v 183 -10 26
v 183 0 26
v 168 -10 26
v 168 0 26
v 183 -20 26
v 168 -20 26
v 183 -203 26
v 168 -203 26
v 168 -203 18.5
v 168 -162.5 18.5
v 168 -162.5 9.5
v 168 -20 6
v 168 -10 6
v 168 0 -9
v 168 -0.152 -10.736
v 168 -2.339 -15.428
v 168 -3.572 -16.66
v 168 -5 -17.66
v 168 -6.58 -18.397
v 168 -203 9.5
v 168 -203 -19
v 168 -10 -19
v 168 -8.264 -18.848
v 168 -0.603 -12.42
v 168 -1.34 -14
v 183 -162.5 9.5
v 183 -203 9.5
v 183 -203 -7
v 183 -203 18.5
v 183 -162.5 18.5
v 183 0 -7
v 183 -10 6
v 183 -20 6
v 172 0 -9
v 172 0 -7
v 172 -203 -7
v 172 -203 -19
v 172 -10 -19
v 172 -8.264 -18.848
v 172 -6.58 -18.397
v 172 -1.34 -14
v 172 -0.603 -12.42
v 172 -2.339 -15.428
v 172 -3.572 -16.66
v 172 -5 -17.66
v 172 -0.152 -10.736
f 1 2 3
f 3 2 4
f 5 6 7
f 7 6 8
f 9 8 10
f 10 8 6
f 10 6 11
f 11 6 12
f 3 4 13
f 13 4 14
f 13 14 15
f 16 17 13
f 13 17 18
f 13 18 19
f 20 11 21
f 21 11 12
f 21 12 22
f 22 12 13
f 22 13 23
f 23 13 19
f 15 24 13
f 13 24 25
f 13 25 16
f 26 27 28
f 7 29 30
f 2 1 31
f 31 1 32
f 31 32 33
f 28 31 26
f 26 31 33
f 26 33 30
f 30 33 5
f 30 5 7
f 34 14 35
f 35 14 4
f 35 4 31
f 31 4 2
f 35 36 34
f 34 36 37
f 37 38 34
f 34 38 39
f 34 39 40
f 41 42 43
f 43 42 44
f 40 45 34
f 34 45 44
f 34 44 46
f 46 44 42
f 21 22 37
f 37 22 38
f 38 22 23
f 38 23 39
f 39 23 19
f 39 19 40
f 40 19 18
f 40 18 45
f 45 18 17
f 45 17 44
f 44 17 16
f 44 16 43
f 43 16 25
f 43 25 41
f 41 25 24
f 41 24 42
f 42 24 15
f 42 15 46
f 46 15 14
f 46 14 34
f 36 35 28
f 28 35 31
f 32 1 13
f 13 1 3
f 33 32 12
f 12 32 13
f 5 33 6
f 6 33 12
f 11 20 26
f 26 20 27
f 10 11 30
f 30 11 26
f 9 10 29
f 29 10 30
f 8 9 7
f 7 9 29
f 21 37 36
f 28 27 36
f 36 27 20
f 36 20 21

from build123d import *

# Parameters (mm, degrees)
EXTRUDE_1_DEPTH        = 26
EXTRUDE_2_DEPTH        = 19
FILLET_1_R             = 10
SKETCH_5_W             = 161
SKETCH_5_H             = 6
CUT_EXTRUDE_1_DEPTH    = 52
SKETCH_1_5_W           = 11
SKETCH_1_5_H           = 340
EXTRUDE_4_DEPTH        = 7
SKETCH_6_W             = 1.9
SKETCH_6_H             = 2
SKETCH_6_W_2           = 6.6
EXTRUDE_5_DEPTH        = 28
SKETCH_6_3_W           = 6.6
SKETCH_6_3_H           = 2
CUT_EXTRUDE_2_DEPTH    = 5
FILLET_2_R             = 20
SKETCH_6_4_W           = 15
SKETCH_6_4_H           = 10
SKETCH_6_4_H_2         = 9
EXTRUDE_6_DEPTH        = 30
SKETCH_6_5_W           = 15
SKETCH_6_5_H           = 9
EXTRUDE_7_DEPTH        = 28
EXTRUDE_8_DEPTH        = 15
FILLET_3_R             = 20
FILLET_3_OF_MIRROR_2_R = 20
FILLET_4_R             = 20
SKETCH_11_W            = 20
SKETCH_11_H            = 20
CUT_EXTRUDE_3_DEPTH    = 617
SKETCH_10_W            = 20
SKETCH_10_H            = 10
CUT_EXTRUDE_4_DEPTH    = 617
CUT_EXTRUDE_START      = -37
SKETCH_12_W            = 8
SKETCH_12_H            = 20
SKETCH_12_W_2          = 0.5
CUT_EXTRUDE_5_DEPTH    = 37


with BuildPart() as part:
    # 스케치1 → 보스-돌출1 (new body)
    with BuildSketch(Plane.XY):
        Polygon((-168, 0), (168, 0), (183, 0), (183, -340), (168, -340), (168, -20), (-168, -20), (-168, -340), (-183, -340), (-183, 0), align=None)
    extrude(amount=EXTRUDE_1_DEPTH)

    # 스케치1<4> → 보스-돌출2 (add)
    with BuildSketch(Plane.XY):
        Polygon((172, 0), (168, 0), (168, -20), (168, -340), (172, -340), align=None)
        Polygon((-168, -20), (-168, 0), (-172, 0), (-172, -340), (-168, -340), align=None)
    extrude(amount=-EXTRUDE_2_DEPTH)

    # 필렛1
    fillet_1_edges = [part.edges().sort_by_distance(p)[0] for p in [
        (170, 0, -19),
        (170, -340, -19),
        (-170, -340, -19),
        (-170, 0, -19),
    ]]
    fillet(fillet_1_edges, radius=FILLET_1_R)

    # 스케치5 → 컷-돌출1 (cut)
    with BuildSketch(Plane(origin=(0, 0, 0), x_dir=(1, 0, 0), z_dir=(0, 1, 0))):
        with Locations((-87.5, -3)):
            Rectangle(SKETCH_5_W, SKETCH_5_H)
        with Locations((87.5, -3)):
            Rectangle(SKETCH_5_W, SKETCH_5_H)
    extrude(amount=-CUT_EXTRUDE_1_DEPTH, mode=Mode.SUBTRACT)

    # 스케치1<5> → 보스-돌출4 (add)
    with BuildSketch(Plane.XY):
        with Locations((177.5, -170)):
            Rectangle(SKETCH_1_5_W, SKETCH_1_5_H)
        with Locations((-177.5, -170)):
            Rectangle(SKETCH_1_5_W, SKETCH_1_5_H)
    extrude(amount=-EXTRUDE_4_DEPTH)

    # 스케치6 → 보스-돌출5 (add)
    with BuildSketch(Plane.XZ.offset(340)):
        with Locations((-182.05, -6)):
            Rectangle(SKETCH_6_W, SKETCH_6_H)
        with Locations((-177.8, -6)):
            Rectangle(SKETCH_6_W_2, SKETCH_6_H)
        Polygon((-174.5, -7), (-172, -7), (-168, -7), (-168, -5), (-174.5, -5), align=None)
    extrude_5 = extrude(amount=EXTRUDE_5_DEPTH)

    # 스케치6<3> → 컷-돌출2 (cut)
    with BuildSketch(Plane.XZ.offset(340)):
        with Locations((-177.8, -6)):
            Rectangle(SKETCH_6_3_W, SKETCH_6_3_H)
    cut_extrude_2 = extrude(amount=CUT_EXTRUDE_2_DEPTH, mode=Mode.SUBTRACT)

    # 필렛2
    # the kernel refuses this fillet: 20 mm, written as the material it adds along each edge
    with BuildSketch(Plane(origin=(-172, -340, -7), x_dir=(0, -1, 0), z_dir=(1, 0, 0))) as fillet_2_piece_1:
        with BuildLine():
            CenterArc((14, 20), FILLET_2_R, 216.869897646, 53.130102354)
            Line((-2, 8), (-3.6, 6.8))
            ThreePointArc((-3.6, 6.8), (-2, 2), (-2, 0))
            Line((-2, 0), (0, -2))
            Line((0, -2), (14, -2))
            Line((14, -2), (14, 0))
        make_face()
    extrude(amount=4)

    # 스케치6<4> → 보스-돌출6 (add)
    with BuildSketch(Plane.XZ.offset(340)):
        with Locations((-175.5, 31)):
            Rectangle(SKETCH_6_4_W, SKETCH_6_4_H)
        with Locations((-175.5, 40.5)):
            Rectangle(SKETCH_6_4_W, SKETCH_6_4_H_2)
    extrude_6 = extrude(amount=-EXTRUDE_6_DEPTH)

    # 스케치6<5> → 보스-돌출7 (add)
    with BuildSketch(Plane.XZ.offset(340)):
        with Locations((-175.5, 40.5)):
            Rectangle(SKETCH_6_5_W, SKETCH_6_5_H)
    extrude_7 = extrude(amount=EXTRUDE_7_DEPTH)

    # 스케치9 → 보스-돌출8 (add)
    with BuildSketch(Plane.ZY.offset(183)):
        Polygon((26, -310), (45, -310), (26, -270), align=None)
    extrude_8 = extrude(amount=-EXTRUDE_8_DEPTH)

    # 필렛3
    fillet_3_edges = [part.edges().sort_by_distance(p)[0] for p in [
        (-175.5, -310, 45),
        (-175.5, -270, 26),
    ]]
    fillet(fillet_3_edges, radius=FILLET_3_R)

    # 대칭 복사2: 보스-돌출5, 컷-돌출2, 보스-돌출6, 보스-돌출7, 보스-돌출8 across plane
    add(extrude_5.mirror(Plane(origin=(0, 0, 0), x_dir=(0, 0, 1), z_dir=(1, 0, 0))))
    add(cut_extrude_2.mirror(Plane(origin=(0, 0, 0), x_dir=(0, 0, 1), z_dir=(1, 0, 0))), mode=Mode.SUBTRACT)
    add(extrude_6.mirror(Plane(origin=(0, 0, 0), x_dir=(0, 0, 1), z_dir=(1, 0, 0))))
    add(extrude_7.mirror(Plane(origin=(0, 0, 0), x_dir=(0, 0, 1), z_dir=(1, 0, 0))))
    add(extrude_8.mirror(Plane(origin=(0, 0, 0), x_dir=(0, 0, 1), z_dir=(1, 0, 0))))

    # 필렛3 of 대칭 복사2
    fillet_3_of_mirror_2_edges = [part.edges().sort_by_distance(p)[0] for p in [
        (175.5, -310, 45),
        (175.5, -270, 26),
    ]]
    fillet(fillet_3_of_mirror_2_edges, radius=FILLET_3_OF_MIRROR_2_R)

    # 필렛4
    # the kernel refuses this fillet: 20 mm, written as the material it adds along each edge
    with BuildSketch(Plane(origin=(172, -340, -7), x_dir=(0, 0.24253562503633938, -0.9701425001453302), z_dir=(-1, 0, 0))) as fillet_4_piece_1:
        with BuildLine():
            CenterArc((16.007351252, 18.432707503), FILLET_4_R, 194.036243468, 53.130102354)
            Line((-3.395498751, 13.581995002), (-5.335783751, 13.096923752))
            Line((-5.335783751, 13.096923752), (-1.940285, -0.48507125))
            Line((-1.940285, -0.48507125), (0.48507125, -1.940285))
            ThreePointArc((0.48507125, -1.940285), (2.42535625, -1.45521375), (7.470097251, -1.84327075))
            Line((7.470097251, -1.84327075), (8.246211251, 0))
        make_face()
    extrude(amount=4)

    # 스케치11 → 컷-돌출3 (cut)
    with BuildSketch(Plane.ZY.offset(-168)):
        with BuildLine():
            ThreePointArc((45, -314.508610159), (44.510394688, -310.110371974), (43.065550087, -305.927473868))
            Line((43.065550087, -305.927473868), (27.934449913, -274.072526132))
            ThreePointArc((27.934449913, -274.072526132), (26.489605312, -269.889628026), (26, -265.491389841))
            Line((26, -265.491389841), (26, -20))
            Line((26, -20), (6, -20))
            Line((6, -20), (6, 0))
            Line((6, 0), (-7, 0))
            Line((-7, 0), (-7, -354))
            Line((-7, -354), (-7, -368))
            Line((-7, -368), (-5, -368))
            Line((-5, -368), (-5, -340))
            Line((-5, -340), (36, -340))
            Line((36, -340), (36, -368))
            Line((36, -368), (45, -368))
            Line((45, -368), (45, -314.508610159))
        make_face()
        with Locations((16, -10)):
            Rectangle(SKETCH_11_W, SKETCH_11_H)
        with BuildLine():
            Line((-7, -354), (-7, 0))
            Line((-7, 0), (-9, 0))
            ThreePointArc((-9, 0), (-16.071067812, -2.928932188), (-19, -10))
            Line((-19, -10), (-19, -330))
            ThreePointArc((-19, -330), (-17.94427191, -334.472135955), (-15, -338))
            ThreePointArc((-15, -338), (-9.11145618, -345.05572809), (-7, -354))
        make_face()
    extrude(amount=CUT_EXTRUDE_3_DEPTH, mode=Mode.SUBTRACT)

    # 스케치10 → 컷-돌출4 (cut)
    with BuildSketch(Plane(origin=(183, 0, 0), x_dir=(0, 0, -1), z_dir=(1, 0, 0))):
        with Locations((-16, -15)):
            Rectangle(SKETCH_10_W, SKETCH_10_H)
    extrude(amount=-CUT_EXTRUDE_4_DEPTH, mode=Mode.SUBTRACT)

    # 스케치12 → 컷-돌출5 (cut)
    with BuildSketch(Plane.ZY.offset(-168).offset(CUT_EXTRUDE_START)):
        with Locations((14, -173)):
            Rectangle(SKETCH_12_W, SKETCH_12_H)
        with BuildLine():
            Line((18.5, -203), (18, -203))
            Line((18, -203), (18, -183))
            Line((18, -183), (10, -183))
            Line((10, -183), (10, -203))
            Line((10, -203), (9.5, -203))
            Line((9.5, -203), (-7, -203))
            Line((-7, -203), (-7, -354))
            Line((-7, -354), (-7, -368))
            Line((-7, -368), (-5, -368))
            Line((-5, -368), (-5, -340))
            Line((-5, -340), (36, -340))
            Line((36, -340), (36, -368))
            Line((36, -368), (45, -368))
            Line((45, -368), (45, -314.508610159))
            ThreePointArc((45, -314.508610159), (44.510394688, -310.110371974), (43.065550087, -305.927473868))
            Line((43.065550087, -305.927473868), (27.934449913, -274.072526132))
            ThreePointArc((27.934449913, -274.072526132), (26.489605312, -269.889628026), (26, -265.491389841))
            Line((26, -265.491389841), (26, -203))
            Line((26, -203), (18.5, -203))
        make_face()
        Polygon((18, -163), (18, -183), (18.5, -183), (18.5, -162.5), (9.5, -162.5), (9.5, -183), (10, -183), (10, -163), align=None)
        with Locations((18.25, -193)):
            Rectangle(SKETCH_12_W_2, SKETCH_12_H)
        with Locations((9.75, -193)):
            Rectangle(SKETCH_12_W_2, SKETCH_12_H)
        with BuildLine():
            Line((-7, -354), (-7, -203))
            Line((-7, -203), (-19, -203))
            Line((-19, -203), (-19, -330))
            ThreePointArc((-19, -330), (-17.94427191, -334.472135955), (-15, -338))
            ThreePointArc((-15, -338), (-9.11145618, -345.05572809), (-7, -354))
        make_face()
    extrude(amount=CUT_EXTRUDE_5_DEPTH, mode=Mode.SUBTRACT)


solid = part.part
